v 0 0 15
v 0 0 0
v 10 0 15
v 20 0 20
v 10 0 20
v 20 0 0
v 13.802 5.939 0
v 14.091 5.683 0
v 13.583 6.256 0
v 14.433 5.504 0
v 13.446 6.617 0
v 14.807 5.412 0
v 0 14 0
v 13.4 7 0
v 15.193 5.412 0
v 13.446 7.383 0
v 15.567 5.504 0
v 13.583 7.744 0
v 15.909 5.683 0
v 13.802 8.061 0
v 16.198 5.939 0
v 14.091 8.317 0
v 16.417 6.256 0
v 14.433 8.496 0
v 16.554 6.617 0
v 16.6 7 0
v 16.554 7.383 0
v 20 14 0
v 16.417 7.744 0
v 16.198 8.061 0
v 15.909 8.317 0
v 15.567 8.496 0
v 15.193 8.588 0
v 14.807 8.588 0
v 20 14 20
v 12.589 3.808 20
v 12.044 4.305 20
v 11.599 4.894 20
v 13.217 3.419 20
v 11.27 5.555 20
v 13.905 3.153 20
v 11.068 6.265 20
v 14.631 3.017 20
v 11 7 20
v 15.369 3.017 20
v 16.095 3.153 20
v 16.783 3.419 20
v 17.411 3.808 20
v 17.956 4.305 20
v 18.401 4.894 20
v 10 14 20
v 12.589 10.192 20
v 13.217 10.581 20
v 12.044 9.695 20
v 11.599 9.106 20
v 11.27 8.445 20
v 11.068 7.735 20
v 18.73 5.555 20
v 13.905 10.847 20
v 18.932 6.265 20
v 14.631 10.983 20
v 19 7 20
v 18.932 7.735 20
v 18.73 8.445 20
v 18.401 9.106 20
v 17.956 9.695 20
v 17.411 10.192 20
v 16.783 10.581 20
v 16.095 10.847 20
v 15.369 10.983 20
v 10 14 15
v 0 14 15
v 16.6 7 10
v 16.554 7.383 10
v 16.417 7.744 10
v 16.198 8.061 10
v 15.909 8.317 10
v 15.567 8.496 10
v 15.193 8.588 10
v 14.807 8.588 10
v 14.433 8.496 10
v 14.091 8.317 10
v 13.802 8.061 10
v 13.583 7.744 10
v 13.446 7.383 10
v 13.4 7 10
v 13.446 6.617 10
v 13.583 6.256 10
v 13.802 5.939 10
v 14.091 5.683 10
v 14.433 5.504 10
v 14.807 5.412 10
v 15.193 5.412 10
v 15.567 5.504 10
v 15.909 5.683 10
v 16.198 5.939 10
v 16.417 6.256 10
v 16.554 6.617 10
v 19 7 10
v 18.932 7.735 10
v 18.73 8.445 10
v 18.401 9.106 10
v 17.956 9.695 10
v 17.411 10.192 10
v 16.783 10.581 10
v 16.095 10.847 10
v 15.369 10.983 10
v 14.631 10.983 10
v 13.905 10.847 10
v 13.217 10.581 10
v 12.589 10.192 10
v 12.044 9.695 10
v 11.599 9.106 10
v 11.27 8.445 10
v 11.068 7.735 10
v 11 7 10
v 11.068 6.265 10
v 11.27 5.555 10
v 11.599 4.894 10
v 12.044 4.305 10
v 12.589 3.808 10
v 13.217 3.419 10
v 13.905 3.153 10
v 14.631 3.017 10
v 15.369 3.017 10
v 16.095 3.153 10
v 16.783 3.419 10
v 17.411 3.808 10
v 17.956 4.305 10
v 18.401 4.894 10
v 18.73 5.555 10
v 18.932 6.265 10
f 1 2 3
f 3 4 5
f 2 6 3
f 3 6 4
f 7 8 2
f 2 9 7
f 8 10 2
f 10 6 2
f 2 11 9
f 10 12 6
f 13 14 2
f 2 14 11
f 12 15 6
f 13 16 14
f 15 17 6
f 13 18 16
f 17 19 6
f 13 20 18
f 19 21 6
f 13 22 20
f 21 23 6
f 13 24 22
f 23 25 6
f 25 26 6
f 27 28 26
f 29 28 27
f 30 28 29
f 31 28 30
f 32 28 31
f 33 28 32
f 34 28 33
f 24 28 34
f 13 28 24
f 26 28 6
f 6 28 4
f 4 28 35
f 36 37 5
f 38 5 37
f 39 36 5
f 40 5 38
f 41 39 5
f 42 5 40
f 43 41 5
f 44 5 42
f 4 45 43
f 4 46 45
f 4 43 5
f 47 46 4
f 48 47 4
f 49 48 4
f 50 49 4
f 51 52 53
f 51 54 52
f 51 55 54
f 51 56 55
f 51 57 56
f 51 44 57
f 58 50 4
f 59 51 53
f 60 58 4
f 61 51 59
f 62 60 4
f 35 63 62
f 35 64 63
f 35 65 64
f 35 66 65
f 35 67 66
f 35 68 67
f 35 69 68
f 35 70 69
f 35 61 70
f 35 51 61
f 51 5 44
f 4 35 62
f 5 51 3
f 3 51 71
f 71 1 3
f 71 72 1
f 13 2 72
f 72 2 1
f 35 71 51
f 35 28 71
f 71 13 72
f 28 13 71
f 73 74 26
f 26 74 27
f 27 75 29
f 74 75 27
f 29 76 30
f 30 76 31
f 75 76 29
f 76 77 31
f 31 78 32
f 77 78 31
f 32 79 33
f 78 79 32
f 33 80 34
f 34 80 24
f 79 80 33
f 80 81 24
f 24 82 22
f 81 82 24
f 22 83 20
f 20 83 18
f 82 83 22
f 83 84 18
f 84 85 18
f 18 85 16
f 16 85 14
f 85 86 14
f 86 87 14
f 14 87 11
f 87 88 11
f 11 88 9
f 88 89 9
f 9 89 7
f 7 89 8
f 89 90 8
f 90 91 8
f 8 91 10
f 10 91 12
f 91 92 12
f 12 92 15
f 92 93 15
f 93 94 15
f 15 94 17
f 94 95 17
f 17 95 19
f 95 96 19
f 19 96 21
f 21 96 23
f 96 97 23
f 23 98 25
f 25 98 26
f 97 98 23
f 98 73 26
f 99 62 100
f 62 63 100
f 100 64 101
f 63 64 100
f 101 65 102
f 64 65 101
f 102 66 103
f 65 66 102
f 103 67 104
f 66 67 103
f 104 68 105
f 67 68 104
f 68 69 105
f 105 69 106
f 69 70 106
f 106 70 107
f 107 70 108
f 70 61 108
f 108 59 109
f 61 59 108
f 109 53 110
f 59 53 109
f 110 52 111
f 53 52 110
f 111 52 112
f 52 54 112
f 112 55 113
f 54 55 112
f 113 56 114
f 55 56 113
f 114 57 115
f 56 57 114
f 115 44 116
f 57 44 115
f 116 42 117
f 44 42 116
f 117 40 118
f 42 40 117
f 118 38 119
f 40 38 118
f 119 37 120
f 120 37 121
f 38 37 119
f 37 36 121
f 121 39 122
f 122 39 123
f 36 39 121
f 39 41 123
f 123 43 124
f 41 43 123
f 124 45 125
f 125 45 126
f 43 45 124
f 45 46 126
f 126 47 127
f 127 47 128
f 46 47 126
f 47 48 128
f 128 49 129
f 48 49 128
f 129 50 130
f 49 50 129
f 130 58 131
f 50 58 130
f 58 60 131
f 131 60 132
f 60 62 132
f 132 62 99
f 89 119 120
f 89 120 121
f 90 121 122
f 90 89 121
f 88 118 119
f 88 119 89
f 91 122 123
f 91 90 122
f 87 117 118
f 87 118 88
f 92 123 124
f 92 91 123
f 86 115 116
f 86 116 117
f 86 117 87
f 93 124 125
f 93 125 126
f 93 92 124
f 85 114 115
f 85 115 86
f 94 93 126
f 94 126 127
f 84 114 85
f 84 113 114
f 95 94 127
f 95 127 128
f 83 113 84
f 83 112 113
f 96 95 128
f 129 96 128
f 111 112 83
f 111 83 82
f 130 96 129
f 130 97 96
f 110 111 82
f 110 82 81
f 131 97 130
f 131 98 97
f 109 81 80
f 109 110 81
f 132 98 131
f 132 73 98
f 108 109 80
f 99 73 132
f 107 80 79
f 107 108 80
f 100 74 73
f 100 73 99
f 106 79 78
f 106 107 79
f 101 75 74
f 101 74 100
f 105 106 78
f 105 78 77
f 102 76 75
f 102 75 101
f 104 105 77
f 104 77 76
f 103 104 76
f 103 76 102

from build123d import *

# Parameters (mm, degrees)
SKETCH_W        = 20
SKETCH_H        = 14
PAD_DEPTH       = 20
SKETCH001_W     = 10
SKETCH001_H     = 14
POCKET_DEPTH    = 5
SKETCH002_R     = 1.6
POCKET001_DEPTH = 20
SKETCH003_R     = 4
POCKET002_DEPTH = 10


with BuildPart() as part:
    # Sketch → Pad (new body)
    with BuildSketch(Plane.XY):
        with Locations((10, 7)):
            Rectangle(SKETCH_W, SKETCH_H)
    extrude(amount=PAD_DEPTH)

    # Sketch001 (on Face6 of Pad) → Pocket (cut)
    with BuildSketch(Plane.XY.offset(20)):
        with Locations((5, 7)):
            Rectangle(SKETCH001_W, SKETCH001_H)
    extrude(amount=-POCKET_DEPTH, mode=Mode.SUBTRACT)

    # Sketch002 (on Face4 of Pocket) → Pocket001 (cut)
    with BuildSketch(Plane.XY.offset(20)):
        with Locations((15, 7)):
            Circle(SKETCH002_R)
    extrude(amount=-POCKET001_DEPTH, mode=Mode.SUBTRACT)

    # Sketch003 (on Face4 of Pocket001) → Pocket002 (cut)
    with BuildSketch(Plane.XY.offset(20)):
        with Locations((15, 7)):
            Circle(SKETCH003_R)
    extrude(amount=-POCKET002_DEPTH, mode=Mode.SUBTRACT)


solid = part.part
